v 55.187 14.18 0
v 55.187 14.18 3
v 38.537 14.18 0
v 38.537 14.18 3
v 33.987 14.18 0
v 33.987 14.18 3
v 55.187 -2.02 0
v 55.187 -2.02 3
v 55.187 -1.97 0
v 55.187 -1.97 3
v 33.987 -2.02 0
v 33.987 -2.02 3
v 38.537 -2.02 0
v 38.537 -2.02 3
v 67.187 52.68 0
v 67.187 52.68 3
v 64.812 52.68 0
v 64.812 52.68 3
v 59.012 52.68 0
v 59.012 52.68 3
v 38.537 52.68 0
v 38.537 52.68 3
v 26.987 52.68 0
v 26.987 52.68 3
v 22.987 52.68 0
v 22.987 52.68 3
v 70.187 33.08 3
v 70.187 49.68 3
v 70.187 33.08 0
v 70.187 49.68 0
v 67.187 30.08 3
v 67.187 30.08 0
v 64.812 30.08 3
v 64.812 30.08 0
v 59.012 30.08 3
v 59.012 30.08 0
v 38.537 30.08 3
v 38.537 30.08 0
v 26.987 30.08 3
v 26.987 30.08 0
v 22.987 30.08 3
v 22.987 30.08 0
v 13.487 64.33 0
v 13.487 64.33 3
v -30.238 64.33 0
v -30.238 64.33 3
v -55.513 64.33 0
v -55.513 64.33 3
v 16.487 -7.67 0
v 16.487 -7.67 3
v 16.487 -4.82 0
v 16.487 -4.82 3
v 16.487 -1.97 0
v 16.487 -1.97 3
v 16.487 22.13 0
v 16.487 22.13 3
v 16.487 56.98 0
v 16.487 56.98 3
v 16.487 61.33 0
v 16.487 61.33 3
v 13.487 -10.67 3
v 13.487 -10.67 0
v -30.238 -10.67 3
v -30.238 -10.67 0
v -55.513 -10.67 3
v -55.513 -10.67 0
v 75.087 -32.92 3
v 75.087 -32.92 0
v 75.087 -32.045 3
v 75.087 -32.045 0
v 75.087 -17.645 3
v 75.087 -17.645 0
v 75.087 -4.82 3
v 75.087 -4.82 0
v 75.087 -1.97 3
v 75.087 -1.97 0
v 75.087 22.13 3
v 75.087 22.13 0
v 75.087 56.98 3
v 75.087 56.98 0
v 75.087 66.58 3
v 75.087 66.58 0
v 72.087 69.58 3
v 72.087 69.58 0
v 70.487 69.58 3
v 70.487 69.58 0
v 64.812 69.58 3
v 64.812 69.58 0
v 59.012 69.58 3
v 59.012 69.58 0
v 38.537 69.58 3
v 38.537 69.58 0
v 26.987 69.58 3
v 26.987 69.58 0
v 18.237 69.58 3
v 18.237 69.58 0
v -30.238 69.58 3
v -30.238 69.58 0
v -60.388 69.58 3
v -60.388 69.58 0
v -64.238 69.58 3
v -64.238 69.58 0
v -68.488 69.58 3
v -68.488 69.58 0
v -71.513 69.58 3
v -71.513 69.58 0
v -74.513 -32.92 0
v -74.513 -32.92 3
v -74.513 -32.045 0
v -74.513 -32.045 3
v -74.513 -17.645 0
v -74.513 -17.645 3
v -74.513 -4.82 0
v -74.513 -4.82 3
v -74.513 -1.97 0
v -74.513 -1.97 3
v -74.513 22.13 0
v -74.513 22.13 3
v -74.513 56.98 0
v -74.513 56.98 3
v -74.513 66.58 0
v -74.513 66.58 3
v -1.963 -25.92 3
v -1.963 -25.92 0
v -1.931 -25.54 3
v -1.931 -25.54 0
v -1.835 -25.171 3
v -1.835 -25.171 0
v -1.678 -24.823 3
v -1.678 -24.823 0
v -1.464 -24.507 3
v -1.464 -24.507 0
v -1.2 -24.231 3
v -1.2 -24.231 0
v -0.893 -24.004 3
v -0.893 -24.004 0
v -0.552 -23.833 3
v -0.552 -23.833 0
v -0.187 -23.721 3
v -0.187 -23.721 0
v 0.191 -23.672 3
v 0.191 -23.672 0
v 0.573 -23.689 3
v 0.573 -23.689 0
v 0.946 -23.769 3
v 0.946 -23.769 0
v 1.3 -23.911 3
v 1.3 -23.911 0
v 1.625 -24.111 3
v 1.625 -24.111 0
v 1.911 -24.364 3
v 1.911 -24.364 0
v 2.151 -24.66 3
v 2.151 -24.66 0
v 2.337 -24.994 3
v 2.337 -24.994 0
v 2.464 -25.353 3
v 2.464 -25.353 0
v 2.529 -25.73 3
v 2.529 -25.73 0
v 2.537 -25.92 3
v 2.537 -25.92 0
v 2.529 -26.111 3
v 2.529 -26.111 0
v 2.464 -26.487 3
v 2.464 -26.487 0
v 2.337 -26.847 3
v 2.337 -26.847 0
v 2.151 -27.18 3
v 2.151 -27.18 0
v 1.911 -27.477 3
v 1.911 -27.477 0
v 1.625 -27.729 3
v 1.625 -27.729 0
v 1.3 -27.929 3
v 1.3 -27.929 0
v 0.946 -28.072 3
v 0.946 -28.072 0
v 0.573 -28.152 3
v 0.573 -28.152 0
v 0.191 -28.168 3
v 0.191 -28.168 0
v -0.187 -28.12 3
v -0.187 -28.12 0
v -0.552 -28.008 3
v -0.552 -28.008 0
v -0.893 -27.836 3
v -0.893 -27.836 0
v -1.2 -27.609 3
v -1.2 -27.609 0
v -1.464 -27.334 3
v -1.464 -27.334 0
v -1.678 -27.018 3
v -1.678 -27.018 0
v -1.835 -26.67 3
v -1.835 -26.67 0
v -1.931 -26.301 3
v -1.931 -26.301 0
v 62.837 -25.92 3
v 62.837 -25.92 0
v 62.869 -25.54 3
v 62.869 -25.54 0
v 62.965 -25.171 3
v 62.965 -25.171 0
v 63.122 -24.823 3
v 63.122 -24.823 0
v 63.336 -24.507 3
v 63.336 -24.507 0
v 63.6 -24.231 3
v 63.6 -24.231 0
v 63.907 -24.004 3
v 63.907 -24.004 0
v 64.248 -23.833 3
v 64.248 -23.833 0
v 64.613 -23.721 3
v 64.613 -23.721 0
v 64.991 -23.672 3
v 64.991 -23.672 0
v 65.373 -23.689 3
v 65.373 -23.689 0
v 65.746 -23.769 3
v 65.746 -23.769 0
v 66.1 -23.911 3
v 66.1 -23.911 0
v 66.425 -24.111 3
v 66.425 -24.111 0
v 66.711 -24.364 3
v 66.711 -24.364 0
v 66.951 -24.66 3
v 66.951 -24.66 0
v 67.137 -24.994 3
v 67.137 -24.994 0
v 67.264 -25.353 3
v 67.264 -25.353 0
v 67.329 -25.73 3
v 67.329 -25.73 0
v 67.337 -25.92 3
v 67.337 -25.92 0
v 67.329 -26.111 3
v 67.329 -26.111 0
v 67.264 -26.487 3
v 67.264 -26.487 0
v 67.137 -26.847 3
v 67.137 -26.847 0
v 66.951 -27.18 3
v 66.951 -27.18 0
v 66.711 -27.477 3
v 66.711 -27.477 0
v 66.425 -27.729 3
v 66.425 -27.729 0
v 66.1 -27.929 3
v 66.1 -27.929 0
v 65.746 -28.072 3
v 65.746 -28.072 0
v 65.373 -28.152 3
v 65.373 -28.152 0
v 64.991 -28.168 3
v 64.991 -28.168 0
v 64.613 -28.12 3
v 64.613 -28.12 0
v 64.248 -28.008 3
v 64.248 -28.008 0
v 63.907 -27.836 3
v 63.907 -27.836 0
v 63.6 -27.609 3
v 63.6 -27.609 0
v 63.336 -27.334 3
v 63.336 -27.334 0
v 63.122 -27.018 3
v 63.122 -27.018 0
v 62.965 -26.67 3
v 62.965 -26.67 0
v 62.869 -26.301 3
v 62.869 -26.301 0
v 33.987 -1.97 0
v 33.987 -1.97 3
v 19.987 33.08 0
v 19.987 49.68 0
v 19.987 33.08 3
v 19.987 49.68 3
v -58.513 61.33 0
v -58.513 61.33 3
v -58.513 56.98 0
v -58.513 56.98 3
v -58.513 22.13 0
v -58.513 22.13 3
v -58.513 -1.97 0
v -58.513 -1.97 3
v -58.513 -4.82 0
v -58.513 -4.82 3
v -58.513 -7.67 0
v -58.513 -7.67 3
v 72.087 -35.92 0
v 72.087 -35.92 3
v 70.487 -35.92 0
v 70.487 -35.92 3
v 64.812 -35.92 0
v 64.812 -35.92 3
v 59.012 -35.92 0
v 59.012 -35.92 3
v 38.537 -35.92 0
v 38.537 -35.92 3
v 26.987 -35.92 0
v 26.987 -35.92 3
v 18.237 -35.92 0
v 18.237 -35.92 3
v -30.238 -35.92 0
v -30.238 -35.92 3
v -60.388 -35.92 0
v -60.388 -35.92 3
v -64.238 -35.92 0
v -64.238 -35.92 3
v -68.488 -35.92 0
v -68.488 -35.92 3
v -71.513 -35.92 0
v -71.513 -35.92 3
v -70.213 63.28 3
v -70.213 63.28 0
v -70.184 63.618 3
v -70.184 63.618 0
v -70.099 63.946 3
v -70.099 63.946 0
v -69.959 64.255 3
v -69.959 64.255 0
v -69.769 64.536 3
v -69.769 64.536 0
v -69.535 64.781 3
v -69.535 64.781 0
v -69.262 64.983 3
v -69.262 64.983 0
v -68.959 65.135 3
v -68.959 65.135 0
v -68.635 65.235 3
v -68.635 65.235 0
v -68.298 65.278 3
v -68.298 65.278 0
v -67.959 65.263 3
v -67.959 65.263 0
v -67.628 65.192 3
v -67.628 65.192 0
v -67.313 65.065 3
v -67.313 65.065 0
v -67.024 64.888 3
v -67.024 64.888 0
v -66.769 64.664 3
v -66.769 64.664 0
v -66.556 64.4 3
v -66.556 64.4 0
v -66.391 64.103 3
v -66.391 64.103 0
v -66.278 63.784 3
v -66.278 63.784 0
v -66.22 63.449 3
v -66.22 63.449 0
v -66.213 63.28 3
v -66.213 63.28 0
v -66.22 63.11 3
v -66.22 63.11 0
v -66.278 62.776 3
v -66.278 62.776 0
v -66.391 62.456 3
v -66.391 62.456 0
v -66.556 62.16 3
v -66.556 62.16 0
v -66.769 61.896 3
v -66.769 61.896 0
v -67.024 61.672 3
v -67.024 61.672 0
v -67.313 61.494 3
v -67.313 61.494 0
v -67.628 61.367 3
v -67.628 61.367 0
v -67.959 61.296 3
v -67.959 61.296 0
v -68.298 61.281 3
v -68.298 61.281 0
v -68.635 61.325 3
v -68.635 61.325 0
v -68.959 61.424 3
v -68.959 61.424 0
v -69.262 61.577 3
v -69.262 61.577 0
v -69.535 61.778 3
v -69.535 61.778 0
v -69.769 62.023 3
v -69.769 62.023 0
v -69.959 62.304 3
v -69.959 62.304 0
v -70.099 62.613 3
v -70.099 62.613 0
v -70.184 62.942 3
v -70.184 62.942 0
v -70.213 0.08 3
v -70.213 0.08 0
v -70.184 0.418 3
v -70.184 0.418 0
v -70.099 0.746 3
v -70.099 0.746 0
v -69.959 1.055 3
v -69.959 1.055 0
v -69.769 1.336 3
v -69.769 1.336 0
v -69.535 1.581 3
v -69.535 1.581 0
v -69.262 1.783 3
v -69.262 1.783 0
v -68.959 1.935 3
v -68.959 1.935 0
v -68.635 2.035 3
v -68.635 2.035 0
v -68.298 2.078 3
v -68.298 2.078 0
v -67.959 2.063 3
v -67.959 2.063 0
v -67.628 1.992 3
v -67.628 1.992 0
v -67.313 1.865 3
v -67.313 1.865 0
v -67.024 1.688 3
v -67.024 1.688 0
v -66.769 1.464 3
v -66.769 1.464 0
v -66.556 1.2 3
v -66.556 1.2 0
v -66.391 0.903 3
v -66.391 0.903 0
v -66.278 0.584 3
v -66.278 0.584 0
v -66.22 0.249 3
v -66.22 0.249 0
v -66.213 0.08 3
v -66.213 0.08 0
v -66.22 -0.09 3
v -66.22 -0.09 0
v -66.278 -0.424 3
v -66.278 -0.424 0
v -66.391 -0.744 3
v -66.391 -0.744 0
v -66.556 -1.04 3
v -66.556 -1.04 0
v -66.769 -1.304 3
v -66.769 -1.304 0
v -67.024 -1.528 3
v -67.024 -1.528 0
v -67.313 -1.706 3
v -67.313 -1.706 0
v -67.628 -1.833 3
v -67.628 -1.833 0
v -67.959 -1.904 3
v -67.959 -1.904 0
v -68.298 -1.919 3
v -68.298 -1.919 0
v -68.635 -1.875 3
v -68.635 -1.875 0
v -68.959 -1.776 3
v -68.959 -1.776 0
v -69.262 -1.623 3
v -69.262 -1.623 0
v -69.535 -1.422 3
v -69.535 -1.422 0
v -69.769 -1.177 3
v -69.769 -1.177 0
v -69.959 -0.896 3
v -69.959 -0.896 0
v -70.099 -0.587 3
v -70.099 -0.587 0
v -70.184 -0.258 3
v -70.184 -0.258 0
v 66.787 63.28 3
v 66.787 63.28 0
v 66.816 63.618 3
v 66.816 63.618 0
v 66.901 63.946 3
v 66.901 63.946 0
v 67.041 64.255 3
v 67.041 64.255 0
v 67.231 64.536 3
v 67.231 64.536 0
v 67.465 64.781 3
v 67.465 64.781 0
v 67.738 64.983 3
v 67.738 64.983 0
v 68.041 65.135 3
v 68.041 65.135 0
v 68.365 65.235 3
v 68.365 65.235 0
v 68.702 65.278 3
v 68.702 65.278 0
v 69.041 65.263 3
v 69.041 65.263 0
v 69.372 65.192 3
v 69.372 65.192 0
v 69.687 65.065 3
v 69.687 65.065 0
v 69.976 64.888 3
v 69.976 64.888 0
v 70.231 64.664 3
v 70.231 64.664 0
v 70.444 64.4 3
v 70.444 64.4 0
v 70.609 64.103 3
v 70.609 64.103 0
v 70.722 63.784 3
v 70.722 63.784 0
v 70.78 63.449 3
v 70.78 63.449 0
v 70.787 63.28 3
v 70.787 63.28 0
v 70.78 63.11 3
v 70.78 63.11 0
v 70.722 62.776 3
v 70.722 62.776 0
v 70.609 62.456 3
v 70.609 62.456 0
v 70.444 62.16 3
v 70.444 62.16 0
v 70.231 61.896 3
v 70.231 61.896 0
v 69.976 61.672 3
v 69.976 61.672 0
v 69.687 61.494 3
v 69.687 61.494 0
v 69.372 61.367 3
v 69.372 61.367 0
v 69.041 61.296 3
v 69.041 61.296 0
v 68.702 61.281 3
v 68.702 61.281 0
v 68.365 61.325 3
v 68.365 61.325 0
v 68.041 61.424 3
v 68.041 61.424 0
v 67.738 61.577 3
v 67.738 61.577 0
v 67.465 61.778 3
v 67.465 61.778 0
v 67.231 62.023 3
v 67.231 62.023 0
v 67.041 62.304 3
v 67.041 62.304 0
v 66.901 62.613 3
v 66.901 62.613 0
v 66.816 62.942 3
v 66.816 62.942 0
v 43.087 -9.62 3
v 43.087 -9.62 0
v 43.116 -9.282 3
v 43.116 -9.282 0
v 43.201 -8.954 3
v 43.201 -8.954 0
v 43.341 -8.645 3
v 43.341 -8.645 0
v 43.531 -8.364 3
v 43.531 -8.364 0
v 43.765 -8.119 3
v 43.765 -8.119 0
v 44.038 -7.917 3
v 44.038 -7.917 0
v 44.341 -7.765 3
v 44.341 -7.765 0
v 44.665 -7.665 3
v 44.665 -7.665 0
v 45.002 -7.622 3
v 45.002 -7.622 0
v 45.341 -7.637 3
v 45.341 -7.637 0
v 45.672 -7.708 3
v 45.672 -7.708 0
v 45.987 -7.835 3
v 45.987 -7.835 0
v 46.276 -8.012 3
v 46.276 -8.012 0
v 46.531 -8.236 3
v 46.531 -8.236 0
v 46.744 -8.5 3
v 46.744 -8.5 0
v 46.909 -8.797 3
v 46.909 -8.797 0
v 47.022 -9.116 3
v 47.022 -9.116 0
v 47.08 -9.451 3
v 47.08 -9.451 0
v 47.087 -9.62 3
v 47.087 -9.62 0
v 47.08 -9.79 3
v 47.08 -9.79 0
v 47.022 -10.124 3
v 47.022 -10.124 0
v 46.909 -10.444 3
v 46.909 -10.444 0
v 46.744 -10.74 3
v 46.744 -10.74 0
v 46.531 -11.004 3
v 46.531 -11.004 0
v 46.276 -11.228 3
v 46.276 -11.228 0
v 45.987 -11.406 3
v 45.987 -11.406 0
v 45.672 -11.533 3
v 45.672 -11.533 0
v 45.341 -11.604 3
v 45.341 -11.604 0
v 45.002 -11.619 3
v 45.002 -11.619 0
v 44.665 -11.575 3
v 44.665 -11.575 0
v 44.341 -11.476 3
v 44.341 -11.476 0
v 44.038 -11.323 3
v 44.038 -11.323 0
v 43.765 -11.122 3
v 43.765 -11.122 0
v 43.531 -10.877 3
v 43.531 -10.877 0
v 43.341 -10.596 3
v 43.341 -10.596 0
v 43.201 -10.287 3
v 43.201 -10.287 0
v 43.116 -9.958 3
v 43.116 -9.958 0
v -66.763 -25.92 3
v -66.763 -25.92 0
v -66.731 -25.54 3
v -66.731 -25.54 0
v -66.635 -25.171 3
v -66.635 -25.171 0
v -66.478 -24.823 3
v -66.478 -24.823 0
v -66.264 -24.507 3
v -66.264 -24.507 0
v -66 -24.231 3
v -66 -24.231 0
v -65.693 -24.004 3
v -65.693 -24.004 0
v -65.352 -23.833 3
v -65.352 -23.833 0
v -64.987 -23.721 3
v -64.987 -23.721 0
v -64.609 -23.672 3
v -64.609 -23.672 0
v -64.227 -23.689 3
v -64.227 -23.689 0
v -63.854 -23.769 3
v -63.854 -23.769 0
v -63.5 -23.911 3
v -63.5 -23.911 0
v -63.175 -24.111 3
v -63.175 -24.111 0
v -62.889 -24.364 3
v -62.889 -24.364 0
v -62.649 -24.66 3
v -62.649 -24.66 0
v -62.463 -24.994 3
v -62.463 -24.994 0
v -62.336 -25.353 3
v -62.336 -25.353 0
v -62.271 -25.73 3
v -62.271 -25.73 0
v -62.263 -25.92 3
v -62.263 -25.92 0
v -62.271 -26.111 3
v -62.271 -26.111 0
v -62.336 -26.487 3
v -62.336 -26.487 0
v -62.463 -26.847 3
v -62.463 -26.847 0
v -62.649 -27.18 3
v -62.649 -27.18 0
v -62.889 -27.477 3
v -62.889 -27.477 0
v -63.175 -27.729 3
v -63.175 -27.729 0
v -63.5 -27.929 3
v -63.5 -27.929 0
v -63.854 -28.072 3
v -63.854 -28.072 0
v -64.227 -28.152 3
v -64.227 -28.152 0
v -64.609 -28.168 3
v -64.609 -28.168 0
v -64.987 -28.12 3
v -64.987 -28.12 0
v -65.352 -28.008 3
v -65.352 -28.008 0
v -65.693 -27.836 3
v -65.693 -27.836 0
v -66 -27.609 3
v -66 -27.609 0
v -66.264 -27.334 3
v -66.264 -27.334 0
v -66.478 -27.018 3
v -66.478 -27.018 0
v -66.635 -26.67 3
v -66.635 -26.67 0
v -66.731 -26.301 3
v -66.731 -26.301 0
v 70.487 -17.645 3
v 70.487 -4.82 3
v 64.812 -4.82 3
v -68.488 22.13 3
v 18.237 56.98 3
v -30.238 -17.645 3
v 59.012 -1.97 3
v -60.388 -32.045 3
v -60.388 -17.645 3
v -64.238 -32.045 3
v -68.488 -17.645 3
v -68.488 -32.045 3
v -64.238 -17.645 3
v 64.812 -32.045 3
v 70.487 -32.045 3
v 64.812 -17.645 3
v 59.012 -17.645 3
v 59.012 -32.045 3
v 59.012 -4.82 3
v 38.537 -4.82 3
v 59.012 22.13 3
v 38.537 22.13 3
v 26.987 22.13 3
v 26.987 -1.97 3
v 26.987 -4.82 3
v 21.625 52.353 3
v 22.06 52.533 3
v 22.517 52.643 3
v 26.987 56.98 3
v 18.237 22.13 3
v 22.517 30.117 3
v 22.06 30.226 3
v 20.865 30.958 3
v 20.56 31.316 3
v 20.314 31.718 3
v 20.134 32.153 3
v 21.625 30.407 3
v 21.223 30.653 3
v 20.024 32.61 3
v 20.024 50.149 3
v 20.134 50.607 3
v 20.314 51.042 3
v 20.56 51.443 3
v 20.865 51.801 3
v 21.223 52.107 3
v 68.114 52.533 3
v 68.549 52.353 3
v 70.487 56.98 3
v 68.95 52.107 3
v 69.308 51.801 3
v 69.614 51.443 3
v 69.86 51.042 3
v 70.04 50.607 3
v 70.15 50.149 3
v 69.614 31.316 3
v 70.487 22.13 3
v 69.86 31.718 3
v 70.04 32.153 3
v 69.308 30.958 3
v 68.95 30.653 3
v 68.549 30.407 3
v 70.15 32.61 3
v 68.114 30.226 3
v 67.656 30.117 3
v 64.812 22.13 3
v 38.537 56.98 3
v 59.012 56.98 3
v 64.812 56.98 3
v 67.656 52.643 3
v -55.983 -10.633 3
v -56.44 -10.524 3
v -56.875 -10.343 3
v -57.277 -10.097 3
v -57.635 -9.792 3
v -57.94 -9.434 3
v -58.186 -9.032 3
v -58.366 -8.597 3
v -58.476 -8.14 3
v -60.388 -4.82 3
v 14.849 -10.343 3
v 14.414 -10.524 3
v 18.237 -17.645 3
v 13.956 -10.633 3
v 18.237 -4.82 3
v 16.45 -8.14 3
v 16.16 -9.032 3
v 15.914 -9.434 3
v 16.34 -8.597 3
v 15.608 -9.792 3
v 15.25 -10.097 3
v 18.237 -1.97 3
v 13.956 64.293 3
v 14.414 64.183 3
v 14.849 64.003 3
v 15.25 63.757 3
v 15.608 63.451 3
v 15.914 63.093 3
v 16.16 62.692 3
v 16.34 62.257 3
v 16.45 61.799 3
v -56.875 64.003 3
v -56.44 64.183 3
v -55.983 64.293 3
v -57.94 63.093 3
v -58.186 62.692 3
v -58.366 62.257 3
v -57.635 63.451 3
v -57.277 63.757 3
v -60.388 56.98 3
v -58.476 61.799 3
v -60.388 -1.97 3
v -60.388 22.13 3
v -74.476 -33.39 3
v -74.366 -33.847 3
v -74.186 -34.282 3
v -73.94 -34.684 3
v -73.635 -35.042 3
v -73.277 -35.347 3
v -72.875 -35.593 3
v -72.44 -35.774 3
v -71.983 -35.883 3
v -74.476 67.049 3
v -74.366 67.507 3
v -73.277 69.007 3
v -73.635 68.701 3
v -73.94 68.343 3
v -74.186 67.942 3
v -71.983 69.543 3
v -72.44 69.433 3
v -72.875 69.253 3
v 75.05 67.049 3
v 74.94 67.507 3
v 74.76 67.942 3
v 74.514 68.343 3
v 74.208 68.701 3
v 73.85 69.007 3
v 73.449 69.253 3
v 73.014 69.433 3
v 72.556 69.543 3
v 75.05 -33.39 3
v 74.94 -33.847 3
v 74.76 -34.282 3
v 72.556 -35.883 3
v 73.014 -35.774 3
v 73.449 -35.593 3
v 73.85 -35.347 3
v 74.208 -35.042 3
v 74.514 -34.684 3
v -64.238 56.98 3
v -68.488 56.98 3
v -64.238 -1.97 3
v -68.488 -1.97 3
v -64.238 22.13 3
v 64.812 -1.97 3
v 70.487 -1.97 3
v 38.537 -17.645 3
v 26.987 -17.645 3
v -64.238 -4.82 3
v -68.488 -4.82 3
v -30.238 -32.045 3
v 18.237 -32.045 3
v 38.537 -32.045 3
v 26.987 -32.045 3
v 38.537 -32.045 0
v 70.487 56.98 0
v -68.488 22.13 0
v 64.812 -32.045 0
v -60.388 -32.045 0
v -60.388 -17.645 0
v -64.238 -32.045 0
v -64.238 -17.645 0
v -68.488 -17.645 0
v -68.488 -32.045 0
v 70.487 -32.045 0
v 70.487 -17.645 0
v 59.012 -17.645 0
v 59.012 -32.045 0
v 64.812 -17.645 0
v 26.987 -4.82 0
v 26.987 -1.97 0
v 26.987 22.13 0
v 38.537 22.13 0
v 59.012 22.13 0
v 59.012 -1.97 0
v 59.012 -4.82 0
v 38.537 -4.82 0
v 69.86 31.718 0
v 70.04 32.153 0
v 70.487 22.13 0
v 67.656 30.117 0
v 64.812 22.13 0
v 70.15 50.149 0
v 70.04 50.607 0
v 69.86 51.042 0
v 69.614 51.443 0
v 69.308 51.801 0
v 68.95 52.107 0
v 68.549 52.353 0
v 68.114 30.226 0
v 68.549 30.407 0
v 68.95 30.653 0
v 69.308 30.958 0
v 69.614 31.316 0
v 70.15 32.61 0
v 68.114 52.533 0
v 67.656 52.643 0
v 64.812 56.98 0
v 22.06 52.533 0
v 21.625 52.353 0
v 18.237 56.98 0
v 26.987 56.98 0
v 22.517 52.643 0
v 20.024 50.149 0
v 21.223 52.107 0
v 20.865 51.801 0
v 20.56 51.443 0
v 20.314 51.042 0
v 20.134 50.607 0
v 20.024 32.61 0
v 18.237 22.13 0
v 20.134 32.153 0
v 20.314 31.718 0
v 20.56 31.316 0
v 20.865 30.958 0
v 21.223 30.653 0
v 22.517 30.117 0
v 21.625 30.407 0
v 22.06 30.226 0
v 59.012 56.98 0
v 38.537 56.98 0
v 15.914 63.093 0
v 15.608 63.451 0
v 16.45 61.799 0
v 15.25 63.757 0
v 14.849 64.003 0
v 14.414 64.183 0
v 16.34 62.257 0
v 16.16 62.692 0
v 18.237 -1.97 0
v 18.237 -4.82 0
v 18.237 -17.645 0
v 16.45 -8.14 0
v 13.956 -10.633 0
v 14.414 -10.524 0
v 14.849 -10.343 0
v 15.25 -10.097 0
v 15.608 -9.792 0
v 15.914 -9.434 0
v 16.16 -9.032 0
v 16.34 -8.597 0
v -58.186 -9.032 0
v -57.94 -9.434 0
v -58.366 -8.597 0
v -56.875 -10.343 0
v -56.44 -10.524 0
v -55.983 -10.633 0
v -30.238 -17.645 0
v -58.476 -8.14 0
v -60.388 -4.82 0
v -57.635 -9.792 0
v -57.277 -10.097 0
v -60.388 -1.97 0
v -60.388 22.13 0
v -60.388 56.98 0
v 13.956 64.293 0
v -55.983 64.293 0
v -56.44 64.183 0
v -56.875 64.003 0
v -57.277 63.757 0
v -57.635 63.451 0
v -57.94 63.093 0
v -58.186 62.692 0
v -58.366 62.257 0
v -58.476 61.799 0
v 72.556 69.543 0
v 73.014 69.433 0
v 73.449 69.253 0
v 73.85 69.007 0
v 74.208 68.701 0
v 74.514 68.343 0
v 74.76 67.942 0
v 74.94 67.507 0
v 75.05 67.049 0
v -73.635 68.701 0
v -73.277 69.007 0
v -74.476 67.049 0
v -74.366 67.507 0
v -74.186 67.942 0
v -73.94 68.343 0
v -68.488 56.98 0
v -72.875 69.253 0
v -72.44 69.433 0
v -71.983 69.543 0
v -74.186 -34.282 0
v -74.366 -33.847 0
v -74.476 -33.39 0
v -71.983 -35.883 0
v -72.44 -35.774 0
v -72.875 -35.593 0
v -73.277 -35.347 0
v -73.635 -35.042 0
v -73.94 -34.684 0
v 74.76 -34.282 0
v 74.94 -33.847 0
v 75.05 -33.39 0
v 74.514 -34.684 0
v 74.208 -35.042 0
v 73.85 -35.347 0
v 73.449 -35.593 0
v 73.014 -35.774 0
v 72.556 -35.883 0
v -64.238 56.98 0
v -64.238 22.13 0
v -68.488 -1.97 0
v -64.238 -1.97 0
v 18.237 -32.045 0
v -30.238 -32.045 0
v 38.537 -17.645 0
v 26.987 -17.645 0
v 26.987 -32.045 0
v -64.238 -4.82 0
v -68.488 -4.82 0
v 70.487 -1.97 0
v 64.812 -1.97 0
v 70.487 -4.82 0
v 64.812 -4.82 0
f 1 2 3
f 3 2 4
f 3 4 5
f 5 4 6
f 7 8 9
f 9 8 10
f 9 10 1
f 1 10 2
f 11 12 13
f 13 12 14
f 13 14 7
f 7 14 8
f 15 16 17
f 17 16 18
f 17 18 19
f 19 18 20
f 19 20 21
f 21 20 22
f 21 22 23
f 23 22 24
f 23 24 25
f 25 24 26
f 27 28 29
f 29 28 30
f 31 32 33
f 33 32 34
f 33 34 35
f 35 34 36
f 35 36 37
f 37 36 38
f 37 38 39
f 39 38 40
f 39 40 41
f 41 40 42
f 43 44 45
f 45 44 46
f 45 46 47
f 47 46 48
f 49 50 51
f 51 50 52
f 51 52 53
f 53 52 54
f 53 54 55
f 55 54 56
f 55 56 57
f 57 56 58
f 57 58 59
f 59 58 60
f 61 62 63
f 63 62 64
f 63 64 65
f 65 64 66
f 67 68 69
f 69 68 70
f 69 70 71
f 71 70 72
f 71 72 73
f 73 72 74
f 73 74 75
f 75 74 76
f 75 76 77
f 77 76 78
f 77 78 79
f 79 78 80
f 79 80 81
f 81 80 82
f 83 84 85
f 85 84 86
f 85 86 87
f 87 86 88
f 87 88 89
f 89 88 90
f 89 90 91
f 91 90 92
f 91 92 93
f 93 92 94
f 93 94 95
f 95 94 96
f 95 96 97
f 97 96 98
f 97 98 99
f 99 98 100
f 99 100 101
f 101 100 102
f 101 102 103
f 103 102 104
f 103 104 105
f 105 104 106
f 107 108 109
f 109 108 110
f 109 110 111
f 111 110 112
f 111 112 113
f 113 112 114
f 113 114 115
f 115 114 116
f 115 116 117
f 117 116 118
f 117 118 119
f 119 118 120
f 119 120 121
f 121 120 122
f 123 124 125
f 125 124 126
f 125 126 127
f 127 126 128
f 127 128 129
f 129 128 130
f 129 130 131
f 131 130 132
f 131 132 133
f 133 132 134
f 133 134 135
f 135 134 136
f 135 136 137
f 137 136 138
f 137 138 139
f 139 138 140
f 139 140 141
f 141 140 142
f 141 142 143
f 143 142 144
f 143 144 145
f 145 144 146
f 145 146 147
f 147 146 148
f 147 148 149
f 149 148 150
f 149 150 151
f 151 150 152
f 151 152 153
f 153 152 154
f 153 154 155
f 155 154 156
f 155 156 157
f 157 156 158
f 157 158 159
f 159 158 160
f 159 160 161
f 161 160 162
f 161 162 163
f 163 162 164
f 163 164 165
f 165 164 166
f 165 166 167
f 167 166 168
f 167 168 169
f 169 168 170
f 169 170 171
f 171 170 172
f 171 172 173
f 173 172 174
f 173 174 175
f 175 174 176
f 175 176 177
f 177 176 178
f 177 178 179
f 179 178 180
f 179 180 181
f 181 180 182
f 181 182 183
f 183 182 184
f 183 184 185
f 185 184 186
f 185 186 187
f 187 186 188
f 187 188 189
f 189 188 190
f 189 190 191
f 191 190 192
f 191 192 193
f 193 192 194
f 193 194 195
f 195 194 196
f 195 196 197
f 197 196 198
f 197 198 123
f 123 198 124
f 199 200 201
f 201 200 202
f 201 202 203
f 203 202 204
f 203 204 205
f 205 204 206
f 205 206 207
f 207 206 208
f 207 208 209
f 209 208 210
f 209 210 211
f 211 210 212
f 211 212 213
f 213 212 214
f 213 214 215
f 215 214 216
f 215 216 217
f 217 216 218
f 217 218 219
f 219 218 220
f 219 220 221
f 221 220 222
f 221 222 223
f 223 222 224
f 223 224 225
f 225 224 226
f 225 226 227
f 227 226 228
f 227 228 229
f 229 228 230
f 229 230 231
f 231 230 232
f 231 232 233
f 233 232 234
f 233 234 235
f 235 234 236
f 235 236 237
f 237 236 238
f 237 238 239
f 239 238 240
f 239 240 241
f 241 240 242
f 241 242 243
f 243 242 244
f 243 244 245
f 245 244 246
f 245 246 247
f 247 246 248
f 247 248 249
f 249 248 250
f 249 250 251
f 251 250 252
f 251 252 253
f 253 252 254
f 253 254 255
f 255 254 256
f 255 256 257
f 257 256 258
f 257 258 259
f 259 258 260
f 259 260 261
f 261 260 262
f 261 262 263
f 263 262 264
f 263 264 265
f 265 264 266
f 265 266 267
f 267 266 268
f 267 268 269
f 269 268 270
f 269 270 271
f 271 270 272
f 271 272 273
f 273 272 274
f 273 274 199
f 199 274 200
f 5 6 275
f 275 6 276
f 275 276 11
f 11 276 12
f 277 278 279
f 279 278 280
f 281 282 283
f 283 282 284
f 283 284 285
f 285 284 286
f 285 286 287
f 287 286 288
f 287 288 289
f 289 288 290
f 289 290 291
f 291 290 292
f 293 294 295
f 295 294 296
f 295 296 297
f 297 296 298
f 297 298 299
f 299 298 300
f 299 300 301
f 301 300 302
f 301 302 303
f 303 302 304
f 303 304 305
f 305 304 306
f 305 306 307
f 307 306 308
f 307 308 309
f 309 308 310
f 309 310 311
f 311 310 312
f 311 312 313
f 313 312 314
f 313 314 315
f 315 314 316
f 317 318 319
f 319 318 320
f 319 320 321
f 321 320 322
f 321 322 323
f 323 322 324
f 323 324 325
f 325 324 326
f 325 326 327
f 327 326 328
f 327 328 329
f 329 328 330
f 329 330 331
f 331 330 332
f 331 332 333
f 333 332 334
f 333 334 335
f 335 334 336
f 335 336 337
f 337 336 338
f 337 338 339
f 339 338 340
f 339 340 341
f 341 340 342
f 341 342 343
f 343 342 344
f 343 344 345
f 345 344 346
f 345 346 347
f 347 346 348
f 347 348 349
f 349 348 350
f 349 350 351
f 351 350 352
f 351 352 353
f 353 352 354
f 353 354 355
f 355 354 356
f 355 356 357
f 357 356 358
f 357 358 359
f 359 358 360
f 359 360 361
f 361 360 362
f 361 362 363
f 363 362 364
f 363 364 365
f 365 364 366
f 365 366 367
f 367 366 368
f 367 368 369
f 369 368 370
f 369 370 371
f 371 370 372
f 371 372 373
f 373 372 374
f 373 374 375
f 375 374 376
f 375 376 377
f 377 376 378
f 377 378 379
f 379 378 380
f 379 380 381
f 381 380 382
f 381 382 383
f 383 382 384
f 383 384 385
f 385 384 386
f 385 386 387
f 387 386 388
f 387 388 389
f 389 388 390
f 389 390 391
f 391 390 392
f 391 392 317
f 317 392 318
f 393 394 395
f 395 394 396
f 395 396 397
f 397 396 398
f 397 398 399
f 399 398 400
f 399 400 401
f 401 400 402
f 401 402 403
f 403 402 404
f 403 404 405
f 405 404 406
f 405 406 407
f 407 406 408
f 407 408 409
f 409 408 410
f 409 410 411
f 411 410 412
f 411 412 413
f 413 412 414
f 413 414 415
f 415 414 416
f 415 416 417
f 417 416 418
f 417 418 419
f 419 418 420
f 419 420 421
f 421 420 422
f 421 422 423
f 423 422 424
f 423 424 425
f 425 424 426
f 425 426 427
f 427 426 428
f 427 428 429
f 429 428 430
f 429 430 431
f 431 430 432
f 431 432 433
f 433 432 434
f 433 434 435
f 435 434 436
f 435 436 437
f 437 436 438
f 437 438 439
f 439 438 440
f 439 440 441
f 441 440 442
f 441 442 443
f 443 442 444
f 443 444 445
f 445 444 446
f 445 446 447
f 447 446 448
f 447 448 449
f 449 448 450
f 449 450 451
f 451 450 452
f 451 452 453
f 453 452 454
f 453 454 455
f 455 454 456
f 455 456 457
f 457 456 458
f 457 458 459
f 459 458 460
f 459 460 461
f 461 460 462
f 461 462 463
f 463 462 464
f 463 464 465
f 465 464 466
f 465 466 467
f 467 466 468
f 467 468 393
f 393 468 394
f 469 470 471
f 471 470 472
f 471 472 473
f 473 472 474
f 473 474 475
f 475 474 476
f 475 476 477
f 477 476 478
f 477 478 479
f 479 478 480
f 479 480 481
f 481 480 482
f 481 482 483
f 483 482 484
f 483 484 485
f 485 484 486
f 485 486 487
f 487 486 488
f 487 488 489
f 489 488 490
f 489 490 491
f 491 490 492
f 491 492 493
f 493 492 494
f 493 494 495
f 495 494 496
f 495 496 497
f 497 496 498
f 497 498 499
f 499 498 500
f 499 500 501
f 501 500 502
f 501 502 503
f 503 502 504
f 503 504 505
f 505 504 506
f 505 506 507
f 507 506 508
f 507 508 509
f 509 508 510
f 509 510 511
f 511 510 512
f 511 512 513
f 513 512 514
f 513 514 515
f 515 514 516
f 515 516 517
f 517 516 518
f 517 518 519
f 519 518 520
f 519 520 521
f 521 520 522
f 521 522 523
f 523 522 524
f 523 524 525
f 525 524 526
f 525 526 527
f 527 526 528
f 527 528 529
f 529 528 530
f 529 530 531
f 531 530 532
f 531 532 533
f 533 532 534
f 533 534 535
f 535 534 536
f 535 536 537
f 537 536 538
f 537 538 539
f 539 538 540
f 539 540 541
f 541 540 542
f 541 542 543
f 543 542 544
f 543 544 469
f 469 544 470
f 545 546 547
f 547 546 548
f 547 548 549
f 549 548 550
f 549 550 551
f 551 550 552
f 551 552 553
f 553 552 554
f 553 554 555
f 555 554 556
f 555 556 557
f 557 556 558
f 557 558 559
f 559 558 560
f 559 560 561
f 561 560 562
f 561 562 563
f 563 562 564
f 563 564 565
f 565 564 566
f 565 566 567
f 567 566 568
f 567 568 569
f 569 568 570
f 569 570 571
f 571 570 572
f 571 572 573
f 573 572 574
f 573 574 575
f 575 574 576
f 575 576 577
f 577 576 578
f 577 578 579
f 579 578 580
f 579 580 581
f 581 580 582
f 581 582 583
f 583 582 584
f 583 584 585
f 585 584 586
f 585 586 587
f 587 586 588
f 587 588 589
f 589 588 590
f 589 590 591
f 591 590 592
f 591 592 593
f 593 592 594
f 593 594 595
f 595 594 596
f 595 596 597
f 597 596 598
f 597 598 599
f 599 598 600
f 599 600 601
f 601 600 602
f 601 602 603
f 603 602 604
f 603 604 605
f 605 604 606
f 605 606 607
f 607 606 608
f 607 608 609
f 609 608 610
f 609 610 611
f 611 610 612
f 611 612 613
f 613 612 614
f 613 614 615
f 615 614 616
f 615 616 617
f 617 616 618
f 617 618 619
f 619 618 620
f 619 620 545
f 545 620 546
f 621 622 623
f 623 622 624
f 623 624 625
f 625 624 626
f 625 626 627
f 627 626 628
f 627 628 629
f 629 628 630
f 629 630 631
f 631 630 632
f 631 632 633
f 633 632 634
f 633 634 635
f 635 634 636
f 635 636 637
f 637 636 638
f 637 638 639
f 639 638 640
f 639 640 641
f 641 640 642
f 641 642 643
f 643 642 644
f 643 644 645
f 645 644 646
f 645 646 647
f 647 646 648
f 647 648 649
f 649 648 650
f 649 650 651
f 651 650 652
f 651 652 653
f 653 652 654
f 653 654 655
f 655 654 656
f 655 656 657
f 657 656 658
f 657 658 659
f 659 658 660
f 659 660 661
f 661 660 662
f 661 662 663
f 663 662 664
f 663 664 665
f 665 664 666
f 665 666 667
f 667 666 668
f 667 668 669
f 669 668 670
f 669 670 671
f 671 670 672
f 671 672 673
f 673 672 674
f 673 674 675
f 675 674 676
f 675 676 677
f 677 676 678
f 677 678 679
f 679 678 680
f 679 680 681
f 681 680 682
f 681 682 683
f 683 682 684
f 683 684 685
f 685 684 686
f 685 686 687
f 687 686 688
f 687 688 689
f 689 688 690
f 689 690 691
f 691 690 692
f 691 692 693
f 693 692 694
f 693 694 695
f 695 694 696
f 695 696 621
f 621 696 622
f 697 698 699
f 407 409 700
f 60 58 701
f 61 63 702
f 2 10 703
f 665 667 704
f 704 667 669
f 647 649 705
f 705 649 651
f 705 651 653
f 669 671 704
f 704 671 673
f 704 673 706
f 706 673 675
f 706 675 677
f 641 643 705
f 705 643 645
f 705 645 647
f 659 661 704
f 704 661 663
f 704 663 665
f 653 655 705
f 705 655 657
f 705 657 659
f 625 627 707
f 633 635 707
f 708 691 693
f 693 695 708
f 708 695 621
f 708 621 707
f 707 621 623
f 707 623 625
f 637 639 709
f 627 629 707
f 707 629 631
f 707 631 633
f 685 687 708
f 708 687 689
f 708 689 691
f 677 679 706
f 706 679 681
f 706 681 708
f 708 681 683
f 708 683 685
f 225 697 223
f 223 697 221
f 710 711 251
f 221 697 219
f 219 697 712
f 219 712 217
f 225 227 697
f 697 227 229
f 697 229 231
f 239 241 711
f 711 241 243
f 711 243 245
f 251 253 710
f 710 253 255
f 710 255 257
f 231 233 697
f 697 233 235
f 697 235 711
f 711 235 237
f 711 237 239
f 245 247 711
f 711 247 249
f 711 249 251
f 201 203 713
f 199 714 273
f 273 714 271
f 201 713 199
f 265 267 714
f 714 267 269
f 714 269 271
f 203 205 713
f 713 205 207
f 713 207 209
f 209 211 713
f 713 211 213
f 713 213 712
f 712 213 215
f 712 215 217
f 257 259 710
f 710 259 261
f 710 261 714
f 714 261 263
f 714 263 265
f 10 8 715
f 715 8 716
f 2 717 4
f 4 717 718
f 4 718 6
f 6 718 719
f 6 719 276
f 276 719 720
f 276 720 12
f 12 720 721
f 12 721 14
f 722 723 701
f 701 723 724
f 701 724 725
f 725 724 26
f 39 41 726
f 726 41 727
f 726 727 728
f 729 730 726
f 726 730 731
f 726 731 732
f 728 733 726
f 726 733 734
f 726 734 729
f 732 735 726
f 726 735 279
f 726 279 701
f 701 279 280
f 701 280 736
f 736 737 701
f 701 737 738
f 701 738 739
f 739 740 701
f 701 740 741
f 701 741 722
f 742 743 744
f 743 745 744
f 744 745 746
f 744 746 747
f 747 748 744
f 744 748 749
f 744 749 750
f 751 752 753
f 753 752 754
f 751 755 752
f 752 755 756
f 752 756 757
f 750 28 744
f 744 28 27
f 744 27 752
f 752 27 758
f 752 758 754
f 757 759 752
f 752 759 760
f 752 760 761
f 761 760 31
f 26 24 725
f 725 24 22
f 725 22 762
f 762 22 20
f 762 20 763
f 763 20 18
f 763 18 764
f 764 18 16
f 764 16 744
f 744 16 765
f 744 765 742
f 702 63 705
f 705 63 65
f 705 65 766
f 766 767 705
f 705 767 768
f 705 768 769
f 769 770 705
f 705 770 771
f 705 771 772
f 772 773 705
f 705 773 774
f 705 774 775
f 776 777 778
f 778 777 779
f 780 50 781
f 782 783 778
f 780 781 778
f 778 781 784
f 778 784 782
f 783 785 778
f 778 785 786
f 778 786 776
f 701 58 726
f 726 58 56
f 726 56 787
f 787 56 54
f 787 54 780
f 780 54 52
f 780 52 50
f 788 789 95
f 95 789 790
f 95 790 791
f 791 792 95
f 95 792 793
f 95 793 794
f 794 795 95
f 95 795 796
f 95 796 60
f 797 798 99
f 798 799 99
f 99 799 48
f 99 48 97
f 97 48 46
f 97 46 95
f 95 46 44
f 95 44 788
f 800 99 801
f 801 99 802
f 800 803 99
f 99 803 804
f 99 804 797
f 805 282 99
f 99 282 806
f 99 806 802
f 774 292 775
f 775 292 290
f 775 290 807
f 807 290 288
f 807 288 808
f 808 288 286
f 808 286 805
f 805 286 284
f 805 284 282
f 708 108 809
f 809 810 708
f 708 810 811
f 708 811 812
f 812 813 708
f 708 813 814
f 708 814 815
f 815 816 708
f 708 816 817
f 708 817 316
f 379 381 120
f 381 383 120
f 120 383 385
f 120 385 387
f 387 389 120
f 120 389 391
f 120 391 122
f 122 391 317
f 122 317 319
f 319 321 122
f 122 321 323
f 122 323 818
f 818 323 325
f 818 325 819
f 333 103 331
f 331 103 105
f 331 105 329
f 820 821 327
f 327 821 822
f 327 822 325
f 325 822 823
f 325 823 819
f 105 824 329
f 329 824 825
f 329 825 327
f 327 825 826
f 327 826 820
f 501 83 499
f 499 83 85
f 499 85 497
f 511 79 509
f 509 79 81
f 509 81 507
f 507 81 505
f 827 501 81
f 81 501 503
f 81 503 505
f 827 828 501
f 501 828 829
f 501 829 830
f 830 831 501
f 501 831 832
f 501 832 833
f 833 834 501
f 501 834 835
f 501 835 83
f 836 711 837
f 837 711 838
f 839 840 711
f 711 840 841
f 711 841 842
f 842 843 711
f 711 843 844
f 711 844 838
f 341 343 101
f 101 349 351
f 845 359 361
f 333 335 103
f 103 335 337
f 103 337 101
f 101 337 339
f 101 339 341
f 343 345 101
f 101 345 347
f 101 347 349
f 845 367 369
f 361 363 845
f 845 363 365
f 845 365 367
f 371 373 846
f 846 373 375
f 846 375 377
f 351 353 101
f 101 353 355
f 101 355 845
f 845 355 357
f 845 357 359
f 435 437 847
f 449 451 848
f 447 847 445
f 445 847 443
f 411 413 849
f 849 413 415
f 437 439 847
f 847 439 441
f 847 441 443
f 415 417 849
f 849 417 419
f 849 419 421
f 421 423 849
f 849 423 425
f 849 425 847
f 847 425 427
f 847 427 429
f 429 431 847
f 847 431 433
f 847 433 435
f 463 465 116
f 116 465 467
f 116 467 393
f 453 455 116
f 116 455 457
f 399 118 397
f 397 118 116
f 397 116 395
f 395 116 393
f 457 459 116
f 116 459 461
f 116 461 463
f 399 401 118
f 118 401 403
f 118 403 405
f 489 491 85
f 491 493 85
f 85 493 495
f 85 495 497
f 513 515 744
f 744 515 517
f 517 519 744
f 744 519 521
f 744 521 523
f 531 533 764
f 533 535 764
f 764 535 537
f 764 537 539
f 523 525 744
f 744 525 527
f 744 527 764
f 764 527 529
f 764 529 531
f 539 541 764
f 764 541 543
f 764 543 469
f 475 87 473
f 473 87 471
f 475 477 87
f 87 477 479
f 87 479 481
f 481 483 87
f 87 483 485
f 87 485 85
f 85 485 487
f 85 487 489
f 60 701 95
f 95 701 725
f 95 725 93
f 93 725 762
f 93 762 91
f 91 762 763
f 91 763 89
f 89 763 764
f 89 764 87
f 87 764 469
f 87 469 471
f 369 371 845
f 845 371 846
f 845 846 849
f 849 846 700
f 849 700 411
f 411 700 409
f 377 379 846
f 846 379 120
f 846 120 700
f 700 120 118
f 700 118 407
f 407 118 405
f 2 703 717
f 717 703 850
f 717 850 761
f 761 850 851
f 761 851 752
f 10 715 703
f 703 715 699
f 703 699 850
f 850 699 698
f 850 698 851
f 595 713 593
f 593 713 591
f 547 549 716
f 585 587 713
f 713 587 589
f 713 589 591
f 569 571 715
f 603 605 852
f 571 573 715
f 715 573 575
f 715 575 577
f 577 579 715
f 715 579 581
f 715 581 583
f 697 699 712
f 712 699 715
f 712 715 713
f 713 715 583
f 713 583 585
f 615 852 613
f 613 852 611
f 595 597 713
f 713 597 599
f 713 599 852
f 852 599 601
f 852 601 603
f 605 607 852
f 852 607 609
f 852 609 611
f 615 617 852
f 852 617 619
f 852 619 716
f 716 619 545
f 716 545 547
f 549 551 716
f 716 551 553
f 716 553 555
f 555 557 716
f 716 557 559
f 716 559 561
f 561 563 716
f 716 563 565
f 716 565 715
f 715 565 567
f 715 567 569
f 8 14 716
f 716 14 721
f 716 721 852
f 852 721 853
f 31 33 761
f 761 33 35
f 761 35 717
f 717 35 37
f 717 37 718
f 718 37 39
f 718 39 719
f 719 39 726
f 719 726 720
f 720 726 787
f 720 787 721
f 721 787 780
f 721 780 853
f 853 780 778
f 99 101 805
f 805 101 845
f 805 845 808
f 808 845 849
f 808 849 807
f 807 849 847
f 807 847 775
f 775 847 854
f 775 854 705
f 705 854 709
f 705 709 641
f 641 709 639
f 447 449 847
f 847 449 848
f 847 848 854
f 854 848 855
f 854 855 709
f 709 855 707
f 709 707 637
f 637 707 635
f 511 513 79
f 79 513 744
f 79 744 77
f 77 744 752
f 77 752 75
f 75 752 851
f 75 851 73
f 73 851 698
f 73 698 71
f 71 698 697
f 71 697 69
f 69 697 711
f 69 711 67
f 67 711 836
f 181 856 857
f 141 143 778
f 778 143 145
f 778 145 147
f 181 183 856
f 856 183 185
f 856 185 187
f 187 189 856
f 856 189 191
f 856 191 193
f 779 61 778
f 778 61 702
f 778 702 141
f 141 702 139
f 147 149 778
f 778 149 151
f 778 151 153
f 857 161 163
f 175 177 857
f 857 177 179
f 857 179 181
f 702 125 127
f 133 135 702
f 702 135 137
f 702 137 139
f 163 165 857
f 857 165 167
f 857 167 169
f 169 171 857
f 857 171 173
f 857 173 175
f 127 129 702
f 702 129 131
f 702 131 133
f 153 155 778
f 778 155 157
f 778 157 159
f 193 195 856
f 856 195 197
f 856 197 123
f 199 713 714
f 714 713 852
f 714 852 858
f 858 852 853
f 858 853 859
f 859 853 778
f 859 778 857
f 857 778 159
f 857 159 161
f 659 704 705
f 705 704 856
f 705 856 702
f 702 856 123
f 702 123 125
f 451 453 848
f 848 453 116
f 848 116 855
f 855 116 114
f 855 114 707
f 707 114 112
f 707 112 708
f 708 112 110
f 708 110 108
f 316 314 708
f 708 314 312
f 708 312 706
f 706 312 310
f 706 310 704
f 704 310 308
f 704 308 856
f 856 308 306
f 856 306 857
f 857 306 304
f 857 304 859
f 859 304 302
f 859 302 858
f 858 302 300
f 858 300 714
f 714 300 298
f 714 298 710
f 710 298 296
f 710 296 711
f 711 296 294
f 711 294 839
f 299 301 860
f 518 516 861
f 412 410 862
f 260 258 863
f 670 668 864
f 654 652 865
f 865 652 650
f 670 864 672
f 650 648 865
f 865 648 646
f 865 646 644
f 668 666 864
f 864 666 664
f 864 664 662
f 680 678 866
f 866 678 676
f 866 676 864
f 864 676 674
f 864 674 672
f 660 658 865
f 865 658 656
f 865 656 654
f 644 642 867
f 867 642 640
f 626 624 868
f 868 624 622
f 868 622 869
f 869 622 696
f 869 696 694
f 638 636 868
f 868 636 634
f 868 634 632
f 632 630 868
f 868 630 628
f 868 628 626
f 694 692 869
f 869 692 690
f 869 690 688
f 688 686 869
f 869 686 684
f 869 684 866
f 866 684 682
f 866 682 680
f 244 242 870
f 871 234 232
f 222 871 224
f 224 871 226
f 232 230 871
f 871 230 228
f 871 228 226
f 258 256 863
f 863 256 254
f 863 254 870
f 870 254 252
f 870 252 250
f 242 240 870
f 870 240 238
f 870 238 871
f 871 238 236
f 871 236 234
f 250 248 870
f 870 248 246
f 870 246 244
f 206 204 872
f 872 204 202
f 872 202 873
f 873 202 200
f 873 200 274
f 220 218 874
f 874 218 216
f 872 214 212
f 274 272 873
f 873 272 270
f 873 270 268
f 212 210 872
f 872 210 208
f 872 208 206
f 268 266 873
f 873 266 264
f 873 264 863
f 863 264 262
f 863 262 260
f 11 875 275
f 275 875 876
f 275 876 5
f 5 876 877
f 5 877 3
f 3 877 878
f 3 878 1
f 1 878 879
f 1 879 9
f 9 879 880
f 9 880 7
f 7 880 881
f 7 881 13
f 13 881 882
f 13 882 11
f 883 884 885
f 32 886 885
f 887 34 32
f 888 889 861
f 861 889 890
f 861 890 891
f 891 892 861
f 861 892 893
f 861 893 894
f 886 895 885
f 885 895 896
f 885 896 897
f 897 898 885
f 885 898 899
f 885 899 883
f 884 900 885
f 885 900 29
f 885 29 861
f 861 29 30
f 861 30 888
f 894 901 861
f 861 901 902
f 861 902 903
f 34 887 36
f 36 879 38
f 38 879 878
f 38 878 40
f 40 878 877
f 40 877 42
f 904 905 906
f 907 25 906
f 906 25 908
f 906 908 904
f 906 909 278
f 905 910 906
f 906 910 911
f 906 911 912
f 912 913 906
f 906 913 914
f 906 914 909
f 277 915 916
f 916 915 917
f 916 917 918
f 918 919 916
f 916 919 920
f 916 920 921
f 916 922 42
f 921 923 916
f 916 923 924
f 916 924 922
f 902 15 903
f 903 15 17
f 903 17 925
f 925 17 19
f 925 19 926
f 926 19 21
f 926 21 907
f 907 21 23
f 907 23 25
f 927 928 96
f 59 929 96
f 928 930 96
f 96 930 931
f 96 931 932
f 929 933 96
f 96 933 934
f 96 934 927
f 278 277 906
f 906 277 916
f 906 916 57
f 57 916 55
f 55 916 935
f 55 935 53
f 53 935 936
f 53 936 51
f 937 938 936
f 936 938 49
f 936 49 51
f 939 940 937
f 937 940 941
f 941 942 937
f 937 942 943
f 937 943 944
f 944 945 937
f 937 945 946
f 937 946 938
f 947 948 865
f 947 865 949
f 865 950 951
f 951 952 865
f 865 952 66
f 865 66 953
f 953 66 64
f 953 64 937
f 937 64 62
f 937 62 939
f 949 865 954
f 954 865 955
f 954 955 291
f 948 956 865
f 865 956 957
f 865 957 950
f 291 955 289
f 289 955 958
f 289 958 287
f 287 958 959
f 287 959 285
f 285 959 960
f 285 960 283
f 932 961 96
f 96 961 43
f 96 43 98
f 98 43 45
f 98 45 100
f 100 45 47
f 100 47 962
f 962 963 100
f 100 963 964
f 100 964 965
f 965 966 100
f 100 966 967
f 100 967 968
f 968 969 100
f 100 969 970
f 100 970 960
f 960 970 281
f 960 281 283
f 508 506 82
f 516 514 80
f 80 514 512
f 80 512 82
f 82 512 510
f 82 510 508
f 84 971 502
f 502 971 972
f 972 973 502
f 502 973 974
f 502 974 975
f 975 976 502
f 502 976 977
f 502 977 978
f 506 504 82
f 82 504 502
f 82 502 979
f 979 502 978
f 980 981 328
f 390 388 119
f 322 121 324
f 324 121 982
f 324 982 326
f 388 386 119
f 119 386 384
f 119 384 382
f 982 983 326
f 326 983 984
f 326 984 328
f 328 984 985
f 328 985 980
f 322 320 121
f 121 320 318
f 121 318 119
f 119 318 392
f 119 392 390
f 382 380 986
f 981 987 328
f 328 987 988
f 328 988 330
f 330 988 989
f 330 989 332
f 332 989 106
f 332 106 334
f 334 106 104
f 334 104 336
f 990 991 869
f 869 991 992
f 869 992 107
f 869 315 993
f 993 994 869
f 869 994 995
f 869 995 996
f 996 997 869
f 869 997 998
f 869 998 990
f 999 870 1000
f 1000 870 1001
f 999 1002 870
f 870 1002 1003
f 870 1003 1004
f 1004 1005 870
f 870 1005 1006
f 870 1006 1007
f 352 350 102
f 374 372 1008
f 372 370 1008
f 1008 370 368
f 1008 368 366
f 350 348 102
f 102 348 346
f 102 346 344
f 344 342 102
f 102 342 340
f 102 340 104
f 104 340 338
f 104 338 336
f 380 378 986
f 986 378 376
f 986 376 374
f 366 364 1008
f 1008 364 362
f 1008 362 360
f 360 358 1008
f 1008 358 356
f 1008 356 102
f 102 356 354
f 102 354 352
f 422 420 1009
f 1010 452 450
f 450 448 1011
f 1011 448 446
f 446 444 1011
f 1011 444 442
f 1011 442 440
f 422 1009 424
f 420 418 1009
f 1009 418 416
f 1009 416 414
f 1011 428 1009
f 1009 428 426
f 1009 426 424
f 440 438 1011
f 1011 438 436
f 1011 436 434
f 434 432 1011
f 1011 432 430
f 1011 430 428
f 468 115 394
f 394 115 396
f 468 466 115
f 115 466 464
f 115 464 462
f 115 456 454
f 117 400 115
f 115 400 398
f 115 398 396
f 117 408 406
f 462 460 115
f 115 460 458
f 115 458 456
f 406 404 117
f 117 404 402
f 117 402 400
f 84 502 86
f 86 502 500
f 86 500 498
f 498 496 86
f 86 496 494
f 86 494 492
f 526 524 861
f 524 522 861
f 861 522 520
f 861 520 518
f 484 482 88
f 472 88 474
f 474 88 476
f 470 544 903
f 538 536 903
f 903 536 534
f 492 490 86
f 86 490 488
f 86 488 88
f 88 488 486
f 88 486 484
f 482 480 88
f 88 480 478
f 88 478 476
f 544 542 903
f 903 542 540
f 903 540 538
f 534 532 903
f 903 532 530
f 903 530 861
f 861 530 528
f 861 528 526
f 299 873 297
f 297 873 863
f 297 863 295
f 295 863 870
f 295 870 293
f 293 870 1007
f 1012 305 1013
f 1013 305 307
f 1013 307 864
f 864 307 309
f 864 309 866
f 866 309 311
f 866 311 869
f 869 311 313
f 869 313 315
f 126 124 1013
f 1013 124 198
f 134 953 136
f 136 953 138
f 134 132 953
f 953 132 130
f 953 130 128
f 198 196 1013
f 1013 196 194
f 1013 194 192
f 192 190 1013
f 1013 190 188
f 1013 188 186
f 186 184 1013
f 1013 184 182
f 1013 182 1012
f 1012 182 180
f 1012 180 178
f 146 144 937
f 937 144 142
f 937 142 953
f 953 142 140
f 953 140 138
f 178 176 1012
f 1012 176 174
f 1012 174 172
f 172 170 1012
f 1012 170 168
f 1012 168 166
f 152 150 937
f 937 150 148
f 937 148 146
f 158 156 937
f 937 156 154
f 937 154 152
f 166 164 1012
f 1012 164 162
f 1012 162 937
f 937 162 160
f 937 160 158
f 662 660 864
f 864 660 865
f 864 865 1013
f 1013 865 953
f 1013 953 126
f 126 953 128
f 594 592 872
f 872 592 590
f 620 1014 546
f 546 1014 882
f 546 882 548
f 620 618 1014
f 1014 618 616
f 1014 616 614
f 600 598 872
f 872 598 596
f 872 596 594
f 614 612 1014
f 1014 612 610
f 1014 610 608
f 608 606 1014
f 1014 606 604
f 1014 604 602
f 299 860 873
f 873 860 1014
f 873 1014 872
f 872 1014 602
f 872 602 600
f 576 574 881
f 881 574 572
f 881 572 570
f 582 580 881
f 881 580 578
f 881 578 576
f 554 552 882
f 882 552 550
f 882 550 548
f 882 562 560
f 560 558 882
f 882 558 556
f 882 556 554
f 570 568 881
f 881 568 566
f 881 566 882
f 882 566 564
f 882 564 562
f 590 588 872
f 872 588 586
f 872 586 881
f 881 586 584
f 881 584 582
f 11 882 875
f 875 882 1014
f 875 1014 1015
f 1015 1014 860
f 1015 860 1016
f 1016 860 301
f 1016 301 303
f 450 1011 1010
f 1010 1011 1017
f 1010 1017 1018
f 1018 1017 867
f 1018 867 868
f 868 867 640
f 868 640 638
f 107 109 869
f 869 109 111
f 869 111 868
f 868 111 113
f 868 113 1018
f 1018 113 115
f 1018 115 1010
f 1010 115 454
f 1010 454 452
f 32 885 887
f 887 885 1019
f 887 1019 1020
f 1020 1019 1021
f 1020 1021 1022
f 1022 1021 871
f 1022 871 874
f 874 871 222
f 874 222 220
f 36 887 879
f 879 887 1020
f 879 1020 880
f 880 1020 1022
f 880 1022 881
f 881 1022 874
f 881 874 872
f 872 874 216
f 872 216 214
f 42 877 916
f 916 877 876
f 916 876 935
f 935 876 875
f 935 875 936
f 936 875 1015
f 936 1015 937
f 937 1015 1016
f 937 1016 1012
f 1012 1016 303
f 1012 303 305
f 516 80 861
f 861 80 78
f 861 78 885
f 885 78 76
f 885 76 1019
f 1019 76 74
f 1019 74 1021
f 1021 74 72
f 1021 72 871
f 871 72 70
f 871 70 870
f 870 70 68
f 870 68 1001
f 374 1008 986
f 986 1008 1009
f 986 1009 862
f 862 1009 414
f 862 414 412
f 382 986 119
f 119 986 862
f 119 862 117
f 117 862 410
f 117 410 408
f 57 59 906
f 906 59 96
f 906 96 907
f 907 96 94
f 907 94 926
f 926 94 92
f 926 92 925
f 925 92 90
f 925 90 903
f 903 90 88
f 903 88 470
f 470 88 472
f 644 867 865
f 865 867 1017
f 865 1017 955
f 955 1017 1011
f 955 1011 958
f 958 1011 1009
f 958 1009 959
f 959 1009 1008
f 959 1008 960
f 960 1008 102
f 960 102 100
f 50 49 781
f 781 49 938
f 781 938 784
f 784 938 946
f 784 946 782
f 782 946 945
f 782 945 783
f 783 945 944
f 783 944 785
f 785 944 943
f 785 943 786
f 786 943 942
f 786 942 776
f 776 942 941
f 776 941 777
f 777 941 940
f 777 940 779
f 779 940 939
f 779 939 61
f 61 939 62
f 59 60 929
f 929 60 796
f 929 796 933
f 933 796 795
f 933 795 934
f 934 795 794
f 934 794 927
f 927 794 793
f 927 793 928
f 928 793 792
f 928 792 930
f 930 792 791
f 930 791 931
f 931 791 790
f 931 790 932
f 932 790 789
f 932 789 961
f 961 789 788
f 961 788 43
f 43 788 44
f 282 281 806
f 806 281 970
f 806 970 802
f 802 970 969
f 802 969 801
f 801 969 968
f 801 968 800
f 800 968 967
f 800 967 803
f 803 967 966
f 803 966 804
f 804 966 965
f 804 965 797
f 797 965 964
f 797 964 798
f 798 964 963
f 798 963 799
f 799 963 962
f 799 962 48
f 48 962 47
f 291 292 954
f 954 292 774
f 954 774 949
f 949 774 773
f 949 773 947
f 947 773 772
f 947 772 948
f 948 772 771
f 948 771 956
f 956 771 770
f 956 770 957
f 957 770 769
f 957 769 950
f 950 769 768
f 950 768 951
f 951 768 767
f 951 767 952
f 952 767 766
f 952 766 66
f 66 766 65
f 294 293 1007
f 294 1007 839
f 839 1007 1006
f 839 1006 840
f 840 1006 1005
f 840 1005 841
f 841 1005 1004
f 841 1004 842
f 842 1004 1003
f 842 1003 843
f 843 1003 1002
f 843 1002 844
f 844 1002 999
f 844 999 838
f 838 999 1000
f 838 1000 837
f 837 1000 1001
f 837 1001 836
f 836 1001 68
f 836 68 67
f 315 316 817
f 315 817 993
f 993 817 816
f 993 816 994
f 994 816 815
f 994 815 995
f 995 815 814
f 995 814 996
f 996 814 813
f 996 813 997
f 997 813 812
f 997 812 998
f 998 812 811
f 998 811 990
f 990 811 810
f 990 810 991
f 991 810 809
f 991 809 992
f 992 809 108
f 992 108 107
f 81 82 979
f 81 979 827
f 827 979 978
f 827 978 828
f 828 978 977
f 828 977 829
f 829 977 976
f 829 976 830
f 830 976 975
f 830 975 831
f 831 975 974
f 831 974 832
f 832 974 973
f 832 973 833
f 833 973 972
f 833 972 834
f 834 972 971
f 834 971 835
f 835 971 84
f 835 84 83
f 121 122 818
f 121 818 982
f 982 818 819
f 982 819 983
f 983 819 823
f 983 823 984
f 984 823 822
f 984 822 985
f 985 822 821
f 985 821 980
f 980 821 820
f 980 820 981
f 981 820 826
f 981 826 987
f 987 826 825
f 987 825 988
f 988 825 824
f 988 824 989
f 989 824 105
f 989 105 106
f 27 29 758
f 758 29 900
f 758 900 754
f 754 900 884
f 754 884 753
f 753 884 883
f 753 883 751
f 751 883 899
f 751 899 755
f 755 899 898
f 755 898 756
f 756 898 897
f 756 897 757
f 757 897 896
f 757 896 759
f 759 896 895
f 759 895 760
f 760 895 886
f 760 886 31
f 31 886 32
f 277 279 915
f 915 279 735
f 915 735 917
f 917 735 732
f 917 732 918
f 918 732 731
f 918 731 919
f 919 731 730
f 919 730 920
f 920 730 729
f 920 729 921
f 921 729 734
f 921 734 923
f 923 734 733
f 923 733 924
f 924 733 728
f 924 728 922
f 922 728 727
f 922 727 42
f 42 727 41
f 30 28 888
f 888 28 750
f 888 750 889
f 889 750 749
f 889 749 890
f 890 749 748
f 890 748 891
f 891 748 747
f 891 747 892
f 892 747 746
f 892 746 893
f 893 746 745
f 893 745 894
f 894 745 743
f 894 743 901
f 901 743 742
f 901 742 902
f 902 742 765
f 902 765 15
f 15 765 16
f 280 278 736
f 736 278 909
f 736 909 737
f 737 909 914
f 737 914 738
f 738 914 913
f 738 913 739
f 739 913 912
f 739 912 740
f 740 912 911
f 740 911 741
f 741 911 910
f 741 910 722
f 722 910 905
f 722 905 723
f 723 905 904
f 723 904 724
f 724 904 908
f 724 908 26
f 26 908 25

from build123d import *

# Parameters (mm, degrees)
SZKIC1_W                    = 149.6
SZKIC1_H                    = 85.5
SZKIC1_R                    = 2
SZKIC1_W_2                  = 75
SZKIC1_H_2                  = 75
SZKIC1_W_3                  = 50.2
SZKIC1_H_3                  = 22.6
SZKIC1_W_4                  = 21.2
SZKIC1_H_4                  = 16.2
SZKIC1_H_5                  = 20
SZKIC1_R_2                  = 2.25
DODANIE_WYCI_GNI_CIE1_DEPTH = 3
ZAOKR_GLENIE1_R             = 3
ZAOKR_GLENIE2_R             = 3


with BuildPart() as part:
    # Szkic1 → Dodanie-wyciągnięcie1 (new body)
    # profile 1 of 2: a face of its own
    with BuildSketch(Plane.XY):
        with Locations((0.286770428, 26.82962954)):
            Rectangle(SZKIC1_W, SZKIC1_H)
        with Locations((45.086770428, -9.62037046)):
            Circle(SZKIC1_R, mode=Mode.SUBTRACT)
        with Locations((68.786770428, 63.27962954)):
            Circle(SZKIC1_R, mode=Mode.SUBTRACT)
        with Locations((-68.213229572, 0.07962954)):
            Circle(SZKIC1_R, mode=Mode.SUBTRACT)
        with Locations((-68.213229572, 63.27962954)):
            Circle(SZKIC1_R, mode=Mode.SUBTRACT)
        with Locations((-21.013229572, 26.82962954)):
            Rectangle(SZKIC1_W_2, SZKIC1_H_2, mode=Mode.SUBTRACT)
        with Locations((45.086770428, 41.37962954)):
            Rectangle(SZKIC1_W_3, SZKIC1_H_3, mode=Mode.SUBTRACT)
        with Locations((44.586770428, 6.07962954)):
            Rectangle(SZKIC1_W_4, SZKIC1_H_4, mode=Mode.SUBTRACT)
    # profile 2 of 2: a face of its own
    with BuildSketch(Plane.XY):
        with Locations((0.286770428, -25.92037046)):
            Rectangle(SZKIC1_W, SZKIC1_H_5)
        with Locations((65.086770428, -25.92037046)):
            Circle(SZKIC1_R_2, mode=Mode.SUBTRACT)
        with Locations((0.286770428, -25.92037046)):
            Circle(SZKIC1_R_2, mode=Mode.SUBTRACT)
        with Locations((-64.513229572, -25.92037046)):
            Circle(SZKIC1_R_2, mode=Mode.SUBTRACT)
    extrude(amount=DODANIE_WYCI_GNI_CIE1_DEPTH)

    # Zaokrąglenie1
    zaokr_glenie1_edges = [part.edges().sort_by_distance(p)[0] for p in [
        (-58.513229572, 64.32962954, 1.5),
        (-58.513229572, -10.67037046, 1.5),
        (16.486770428, -10.67037046, 1.5),
        (16.486770428, 64.32962954, 1.5),
        (75.086770428, -35.92037046, 1.5),
        (-74.513229572, -35.92037046, 1.5),
        (-74.513229572, 69.57962954, 1.5),
        (75.086770428, 69.57962954, 1.5),
    ]]
    fillet(zaokr_glenie1_edges, radius=ZAOKR_GLENIE1_R)

    # Zaokrąglenie2
    zaokr_glenie2_edges = [part.edges().sort_by_distance(p)[0] for p in [
        (19.986770428, 52.67962954, 1.5),
        (19.986770428, 30.07962954, 1.5),
        (70.186770428, 30.07962954, 1.5),
        (70.186770428, 52.67962954, 1.5),
    ]]
    fillet(zaokr_glenie2_edges, radius=ZAOKR_GLENIE2_R)


solid = part.part
